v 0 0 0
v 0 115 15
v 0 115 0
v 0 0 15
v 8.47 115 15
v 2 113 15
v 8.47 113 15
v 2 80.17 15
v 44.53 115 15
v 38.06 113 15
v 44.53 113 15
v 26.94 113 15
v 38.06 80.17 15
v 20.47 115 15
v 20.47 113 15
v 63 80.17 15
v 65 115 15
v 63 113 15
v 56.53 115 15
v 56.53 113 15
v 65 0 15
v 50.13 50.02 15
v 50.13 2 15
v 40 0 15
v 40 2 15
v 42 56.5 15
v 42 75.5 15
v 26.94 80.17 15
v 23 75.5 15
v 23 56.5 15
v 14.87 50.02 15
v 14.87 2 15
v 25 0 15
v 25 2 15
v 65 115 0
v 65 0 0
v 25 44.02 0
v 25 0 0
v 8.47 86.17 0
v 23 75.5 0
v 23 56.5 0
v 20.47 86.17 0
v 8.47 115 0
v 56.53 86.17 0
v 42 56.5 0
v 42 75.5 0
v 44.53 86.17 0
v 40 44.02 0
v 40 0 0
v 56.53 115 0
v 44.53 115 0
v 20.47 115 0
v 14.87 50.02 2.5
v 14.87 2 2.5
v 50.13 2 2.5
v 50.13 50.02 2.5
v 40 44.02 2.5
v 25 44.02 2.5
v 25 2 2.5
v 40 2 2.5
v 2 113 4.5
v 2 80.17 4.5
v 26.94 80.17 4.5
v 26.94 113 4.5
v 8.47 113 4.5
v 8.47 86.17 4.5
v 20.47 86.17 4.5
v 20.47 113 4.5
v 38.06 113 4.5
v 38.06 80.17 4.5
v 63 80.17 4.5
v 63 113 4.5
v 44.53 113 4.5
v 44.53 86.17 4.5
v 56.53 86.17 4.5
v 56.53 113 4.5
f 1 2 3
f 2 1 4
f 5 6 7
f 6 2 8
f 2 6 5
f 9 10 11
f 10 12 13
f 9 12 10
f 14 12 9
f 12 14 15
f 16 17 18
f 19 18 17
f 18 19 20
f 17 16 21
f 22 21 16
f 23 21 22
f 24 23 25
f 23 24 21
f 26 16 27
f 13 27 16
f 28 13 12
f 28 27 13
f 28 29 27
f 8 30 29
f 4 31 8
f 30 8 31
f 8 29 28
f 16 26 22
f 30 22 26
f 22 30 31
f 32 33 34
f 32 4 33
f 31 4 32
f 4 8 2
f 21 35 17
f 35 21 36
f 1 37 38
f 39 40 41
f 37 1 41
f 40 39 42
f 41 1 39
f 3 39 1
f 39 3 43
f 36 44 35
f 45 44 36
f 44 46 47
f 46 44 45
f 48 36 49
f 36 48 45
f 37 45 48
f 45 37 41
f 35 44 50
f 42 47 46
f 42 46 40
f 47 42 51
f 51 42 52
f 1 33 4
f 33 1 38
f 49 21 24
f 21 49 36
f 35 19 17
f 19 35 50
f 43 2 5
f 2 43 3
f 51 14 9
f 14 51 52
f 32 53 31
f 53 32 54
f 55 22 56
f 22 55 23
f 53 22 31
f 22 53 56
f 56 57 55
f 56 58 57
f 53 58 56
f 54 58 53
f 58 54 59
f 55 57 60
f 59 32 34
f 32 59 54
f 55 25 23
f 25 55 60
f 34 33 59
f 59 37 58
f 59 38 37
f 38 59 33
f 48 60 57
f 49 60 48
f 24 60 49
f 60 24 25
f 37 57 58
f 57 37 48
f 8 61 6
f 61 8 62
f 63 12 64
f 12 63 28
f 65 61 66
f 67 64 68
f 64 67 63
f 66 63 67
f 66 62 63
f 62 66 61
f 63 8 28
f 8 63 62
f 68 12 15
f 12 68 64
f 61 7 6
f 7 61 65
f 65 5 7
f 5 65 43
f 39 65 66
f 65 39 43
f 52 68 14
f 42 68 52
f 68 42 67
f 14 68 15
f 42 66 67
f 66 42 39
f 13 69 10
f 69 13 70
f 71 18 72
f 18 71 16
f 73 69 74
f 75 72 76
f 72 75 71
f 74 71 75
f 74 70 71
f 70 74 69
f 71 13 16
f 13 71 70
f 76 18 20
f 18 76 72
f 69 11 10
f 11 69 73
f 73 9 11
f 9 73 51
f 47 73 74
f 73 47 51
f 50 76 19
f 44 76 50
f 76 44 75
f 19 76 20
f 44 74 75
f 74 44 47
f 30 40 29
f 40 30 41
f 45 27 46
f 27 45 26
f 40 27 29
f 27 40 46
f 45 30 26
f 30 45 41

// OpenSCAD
length = 65;
width = 115;
height = 15;

//Based on magnet size:
magnetBaseInnerDiameter = 19;
magnetHeight = 4.0;

//lurker x 6, 					47.02 x 34.26, base 32.70
//deep terror (2 stacks of 5), 	31.83 x 23.94, base 22.49
magnetOffset = 52.5;

largeTokenWidth = 47.02 + 1;
largeTokenLength = 34.26 + 1;
largeTokenHeight = 12 + .5;
largeTokenSquareLipWidthRemainder = largeTokenLength - 15;
largeTokenSquareLipLengthRemainder = 4;

smallToken1Width = 31.83 + 1;
smallToken1Length = 23.94 + 1;
smallToken1Height = 10 + .5;
smallToken1SquareLipWidthRemainder = smallToken1Length - 12;
smallToken1SquareLipLengthRemainder = 4;

smallToken2Width = 31.83 + 1;
smallToken2Length = 23.94 + 1;
smallToken2Height = 10 + .5;
smallToken2SquareLipWidthRemainder = smallToken2Length - 12;
smallToken2SquareLipLengthRemainder = 4;

spaceBetweenCircles = 2;
wallThickness = spaceBetweenCircles;



difference(){
    cube([length, width, height]);


//----------------------------------
translate(
        [
            length/2 - largeTokenLength/2,
            wallThickness,
            height - largeTokenHeight
        ])
        cube([largeTokenLength,largeTokenWidth, largeTokenHeight]);
    translate([
        length/2 - (largeTokenLength - largeTokenSquareLipWidthRemainder)/2,
        0,
        0])
        cube([
            largeTokenLength - largeTokenSquareLipWidthRemainder,
            largeTokenWidth - largeTokenSquareLipLengthRemainder,
            height]);

            
//---------------------------------------------------------------------
    
    translate(
        [
            wallThickness,
            width - (wallThickness + smallToken1Width),
            height - smallToken1Height
        ])
        cube([smallToken1Length,smallToken1Width, smallToken1Height]);
    translate([
        wallThickness + smallToken1SquareLipWidthRemainder/2,
        width - (smallToken1Width - smallToken1SquareLipLengthRemainder),
        0])
        cube([
            smallToken1Length - smallToken1SquareLipWidthRemainder,
            smallToken1Width - smallToken1SquareLipLengthRemainder,
            height]);

    translate(
        [
            length - (wallThickness + smallToken2Length),
            width - (wallThickness + smallToken2Width),
            height - smallToken2Height
        ])
        cube([smallToken2Length,smallToken2Width, smallToken2Height]);
    translate([
        length - (wallThickness + smallToken2Length) + smallToken2SquareLipWidthRemainder/2,
        width - (smallToken2Width - smallToken2SquareLipLengthRemainder),
        0])
        cube([
            smallToken2Length - smallToken2SquareLipWidthRemainder,
            smallToken2Width - smallToken2SquareLipLengthRemainder,
            height]);       

//----------------------------------------
   
    translate([length/2 - magnetBaseInnerDiameter/2, magnetOffset + wallThickness * 2, 0])
        cube([magnetBaseInnerDiameter, magnetBaseInnerDiameter, height]);
        

}
